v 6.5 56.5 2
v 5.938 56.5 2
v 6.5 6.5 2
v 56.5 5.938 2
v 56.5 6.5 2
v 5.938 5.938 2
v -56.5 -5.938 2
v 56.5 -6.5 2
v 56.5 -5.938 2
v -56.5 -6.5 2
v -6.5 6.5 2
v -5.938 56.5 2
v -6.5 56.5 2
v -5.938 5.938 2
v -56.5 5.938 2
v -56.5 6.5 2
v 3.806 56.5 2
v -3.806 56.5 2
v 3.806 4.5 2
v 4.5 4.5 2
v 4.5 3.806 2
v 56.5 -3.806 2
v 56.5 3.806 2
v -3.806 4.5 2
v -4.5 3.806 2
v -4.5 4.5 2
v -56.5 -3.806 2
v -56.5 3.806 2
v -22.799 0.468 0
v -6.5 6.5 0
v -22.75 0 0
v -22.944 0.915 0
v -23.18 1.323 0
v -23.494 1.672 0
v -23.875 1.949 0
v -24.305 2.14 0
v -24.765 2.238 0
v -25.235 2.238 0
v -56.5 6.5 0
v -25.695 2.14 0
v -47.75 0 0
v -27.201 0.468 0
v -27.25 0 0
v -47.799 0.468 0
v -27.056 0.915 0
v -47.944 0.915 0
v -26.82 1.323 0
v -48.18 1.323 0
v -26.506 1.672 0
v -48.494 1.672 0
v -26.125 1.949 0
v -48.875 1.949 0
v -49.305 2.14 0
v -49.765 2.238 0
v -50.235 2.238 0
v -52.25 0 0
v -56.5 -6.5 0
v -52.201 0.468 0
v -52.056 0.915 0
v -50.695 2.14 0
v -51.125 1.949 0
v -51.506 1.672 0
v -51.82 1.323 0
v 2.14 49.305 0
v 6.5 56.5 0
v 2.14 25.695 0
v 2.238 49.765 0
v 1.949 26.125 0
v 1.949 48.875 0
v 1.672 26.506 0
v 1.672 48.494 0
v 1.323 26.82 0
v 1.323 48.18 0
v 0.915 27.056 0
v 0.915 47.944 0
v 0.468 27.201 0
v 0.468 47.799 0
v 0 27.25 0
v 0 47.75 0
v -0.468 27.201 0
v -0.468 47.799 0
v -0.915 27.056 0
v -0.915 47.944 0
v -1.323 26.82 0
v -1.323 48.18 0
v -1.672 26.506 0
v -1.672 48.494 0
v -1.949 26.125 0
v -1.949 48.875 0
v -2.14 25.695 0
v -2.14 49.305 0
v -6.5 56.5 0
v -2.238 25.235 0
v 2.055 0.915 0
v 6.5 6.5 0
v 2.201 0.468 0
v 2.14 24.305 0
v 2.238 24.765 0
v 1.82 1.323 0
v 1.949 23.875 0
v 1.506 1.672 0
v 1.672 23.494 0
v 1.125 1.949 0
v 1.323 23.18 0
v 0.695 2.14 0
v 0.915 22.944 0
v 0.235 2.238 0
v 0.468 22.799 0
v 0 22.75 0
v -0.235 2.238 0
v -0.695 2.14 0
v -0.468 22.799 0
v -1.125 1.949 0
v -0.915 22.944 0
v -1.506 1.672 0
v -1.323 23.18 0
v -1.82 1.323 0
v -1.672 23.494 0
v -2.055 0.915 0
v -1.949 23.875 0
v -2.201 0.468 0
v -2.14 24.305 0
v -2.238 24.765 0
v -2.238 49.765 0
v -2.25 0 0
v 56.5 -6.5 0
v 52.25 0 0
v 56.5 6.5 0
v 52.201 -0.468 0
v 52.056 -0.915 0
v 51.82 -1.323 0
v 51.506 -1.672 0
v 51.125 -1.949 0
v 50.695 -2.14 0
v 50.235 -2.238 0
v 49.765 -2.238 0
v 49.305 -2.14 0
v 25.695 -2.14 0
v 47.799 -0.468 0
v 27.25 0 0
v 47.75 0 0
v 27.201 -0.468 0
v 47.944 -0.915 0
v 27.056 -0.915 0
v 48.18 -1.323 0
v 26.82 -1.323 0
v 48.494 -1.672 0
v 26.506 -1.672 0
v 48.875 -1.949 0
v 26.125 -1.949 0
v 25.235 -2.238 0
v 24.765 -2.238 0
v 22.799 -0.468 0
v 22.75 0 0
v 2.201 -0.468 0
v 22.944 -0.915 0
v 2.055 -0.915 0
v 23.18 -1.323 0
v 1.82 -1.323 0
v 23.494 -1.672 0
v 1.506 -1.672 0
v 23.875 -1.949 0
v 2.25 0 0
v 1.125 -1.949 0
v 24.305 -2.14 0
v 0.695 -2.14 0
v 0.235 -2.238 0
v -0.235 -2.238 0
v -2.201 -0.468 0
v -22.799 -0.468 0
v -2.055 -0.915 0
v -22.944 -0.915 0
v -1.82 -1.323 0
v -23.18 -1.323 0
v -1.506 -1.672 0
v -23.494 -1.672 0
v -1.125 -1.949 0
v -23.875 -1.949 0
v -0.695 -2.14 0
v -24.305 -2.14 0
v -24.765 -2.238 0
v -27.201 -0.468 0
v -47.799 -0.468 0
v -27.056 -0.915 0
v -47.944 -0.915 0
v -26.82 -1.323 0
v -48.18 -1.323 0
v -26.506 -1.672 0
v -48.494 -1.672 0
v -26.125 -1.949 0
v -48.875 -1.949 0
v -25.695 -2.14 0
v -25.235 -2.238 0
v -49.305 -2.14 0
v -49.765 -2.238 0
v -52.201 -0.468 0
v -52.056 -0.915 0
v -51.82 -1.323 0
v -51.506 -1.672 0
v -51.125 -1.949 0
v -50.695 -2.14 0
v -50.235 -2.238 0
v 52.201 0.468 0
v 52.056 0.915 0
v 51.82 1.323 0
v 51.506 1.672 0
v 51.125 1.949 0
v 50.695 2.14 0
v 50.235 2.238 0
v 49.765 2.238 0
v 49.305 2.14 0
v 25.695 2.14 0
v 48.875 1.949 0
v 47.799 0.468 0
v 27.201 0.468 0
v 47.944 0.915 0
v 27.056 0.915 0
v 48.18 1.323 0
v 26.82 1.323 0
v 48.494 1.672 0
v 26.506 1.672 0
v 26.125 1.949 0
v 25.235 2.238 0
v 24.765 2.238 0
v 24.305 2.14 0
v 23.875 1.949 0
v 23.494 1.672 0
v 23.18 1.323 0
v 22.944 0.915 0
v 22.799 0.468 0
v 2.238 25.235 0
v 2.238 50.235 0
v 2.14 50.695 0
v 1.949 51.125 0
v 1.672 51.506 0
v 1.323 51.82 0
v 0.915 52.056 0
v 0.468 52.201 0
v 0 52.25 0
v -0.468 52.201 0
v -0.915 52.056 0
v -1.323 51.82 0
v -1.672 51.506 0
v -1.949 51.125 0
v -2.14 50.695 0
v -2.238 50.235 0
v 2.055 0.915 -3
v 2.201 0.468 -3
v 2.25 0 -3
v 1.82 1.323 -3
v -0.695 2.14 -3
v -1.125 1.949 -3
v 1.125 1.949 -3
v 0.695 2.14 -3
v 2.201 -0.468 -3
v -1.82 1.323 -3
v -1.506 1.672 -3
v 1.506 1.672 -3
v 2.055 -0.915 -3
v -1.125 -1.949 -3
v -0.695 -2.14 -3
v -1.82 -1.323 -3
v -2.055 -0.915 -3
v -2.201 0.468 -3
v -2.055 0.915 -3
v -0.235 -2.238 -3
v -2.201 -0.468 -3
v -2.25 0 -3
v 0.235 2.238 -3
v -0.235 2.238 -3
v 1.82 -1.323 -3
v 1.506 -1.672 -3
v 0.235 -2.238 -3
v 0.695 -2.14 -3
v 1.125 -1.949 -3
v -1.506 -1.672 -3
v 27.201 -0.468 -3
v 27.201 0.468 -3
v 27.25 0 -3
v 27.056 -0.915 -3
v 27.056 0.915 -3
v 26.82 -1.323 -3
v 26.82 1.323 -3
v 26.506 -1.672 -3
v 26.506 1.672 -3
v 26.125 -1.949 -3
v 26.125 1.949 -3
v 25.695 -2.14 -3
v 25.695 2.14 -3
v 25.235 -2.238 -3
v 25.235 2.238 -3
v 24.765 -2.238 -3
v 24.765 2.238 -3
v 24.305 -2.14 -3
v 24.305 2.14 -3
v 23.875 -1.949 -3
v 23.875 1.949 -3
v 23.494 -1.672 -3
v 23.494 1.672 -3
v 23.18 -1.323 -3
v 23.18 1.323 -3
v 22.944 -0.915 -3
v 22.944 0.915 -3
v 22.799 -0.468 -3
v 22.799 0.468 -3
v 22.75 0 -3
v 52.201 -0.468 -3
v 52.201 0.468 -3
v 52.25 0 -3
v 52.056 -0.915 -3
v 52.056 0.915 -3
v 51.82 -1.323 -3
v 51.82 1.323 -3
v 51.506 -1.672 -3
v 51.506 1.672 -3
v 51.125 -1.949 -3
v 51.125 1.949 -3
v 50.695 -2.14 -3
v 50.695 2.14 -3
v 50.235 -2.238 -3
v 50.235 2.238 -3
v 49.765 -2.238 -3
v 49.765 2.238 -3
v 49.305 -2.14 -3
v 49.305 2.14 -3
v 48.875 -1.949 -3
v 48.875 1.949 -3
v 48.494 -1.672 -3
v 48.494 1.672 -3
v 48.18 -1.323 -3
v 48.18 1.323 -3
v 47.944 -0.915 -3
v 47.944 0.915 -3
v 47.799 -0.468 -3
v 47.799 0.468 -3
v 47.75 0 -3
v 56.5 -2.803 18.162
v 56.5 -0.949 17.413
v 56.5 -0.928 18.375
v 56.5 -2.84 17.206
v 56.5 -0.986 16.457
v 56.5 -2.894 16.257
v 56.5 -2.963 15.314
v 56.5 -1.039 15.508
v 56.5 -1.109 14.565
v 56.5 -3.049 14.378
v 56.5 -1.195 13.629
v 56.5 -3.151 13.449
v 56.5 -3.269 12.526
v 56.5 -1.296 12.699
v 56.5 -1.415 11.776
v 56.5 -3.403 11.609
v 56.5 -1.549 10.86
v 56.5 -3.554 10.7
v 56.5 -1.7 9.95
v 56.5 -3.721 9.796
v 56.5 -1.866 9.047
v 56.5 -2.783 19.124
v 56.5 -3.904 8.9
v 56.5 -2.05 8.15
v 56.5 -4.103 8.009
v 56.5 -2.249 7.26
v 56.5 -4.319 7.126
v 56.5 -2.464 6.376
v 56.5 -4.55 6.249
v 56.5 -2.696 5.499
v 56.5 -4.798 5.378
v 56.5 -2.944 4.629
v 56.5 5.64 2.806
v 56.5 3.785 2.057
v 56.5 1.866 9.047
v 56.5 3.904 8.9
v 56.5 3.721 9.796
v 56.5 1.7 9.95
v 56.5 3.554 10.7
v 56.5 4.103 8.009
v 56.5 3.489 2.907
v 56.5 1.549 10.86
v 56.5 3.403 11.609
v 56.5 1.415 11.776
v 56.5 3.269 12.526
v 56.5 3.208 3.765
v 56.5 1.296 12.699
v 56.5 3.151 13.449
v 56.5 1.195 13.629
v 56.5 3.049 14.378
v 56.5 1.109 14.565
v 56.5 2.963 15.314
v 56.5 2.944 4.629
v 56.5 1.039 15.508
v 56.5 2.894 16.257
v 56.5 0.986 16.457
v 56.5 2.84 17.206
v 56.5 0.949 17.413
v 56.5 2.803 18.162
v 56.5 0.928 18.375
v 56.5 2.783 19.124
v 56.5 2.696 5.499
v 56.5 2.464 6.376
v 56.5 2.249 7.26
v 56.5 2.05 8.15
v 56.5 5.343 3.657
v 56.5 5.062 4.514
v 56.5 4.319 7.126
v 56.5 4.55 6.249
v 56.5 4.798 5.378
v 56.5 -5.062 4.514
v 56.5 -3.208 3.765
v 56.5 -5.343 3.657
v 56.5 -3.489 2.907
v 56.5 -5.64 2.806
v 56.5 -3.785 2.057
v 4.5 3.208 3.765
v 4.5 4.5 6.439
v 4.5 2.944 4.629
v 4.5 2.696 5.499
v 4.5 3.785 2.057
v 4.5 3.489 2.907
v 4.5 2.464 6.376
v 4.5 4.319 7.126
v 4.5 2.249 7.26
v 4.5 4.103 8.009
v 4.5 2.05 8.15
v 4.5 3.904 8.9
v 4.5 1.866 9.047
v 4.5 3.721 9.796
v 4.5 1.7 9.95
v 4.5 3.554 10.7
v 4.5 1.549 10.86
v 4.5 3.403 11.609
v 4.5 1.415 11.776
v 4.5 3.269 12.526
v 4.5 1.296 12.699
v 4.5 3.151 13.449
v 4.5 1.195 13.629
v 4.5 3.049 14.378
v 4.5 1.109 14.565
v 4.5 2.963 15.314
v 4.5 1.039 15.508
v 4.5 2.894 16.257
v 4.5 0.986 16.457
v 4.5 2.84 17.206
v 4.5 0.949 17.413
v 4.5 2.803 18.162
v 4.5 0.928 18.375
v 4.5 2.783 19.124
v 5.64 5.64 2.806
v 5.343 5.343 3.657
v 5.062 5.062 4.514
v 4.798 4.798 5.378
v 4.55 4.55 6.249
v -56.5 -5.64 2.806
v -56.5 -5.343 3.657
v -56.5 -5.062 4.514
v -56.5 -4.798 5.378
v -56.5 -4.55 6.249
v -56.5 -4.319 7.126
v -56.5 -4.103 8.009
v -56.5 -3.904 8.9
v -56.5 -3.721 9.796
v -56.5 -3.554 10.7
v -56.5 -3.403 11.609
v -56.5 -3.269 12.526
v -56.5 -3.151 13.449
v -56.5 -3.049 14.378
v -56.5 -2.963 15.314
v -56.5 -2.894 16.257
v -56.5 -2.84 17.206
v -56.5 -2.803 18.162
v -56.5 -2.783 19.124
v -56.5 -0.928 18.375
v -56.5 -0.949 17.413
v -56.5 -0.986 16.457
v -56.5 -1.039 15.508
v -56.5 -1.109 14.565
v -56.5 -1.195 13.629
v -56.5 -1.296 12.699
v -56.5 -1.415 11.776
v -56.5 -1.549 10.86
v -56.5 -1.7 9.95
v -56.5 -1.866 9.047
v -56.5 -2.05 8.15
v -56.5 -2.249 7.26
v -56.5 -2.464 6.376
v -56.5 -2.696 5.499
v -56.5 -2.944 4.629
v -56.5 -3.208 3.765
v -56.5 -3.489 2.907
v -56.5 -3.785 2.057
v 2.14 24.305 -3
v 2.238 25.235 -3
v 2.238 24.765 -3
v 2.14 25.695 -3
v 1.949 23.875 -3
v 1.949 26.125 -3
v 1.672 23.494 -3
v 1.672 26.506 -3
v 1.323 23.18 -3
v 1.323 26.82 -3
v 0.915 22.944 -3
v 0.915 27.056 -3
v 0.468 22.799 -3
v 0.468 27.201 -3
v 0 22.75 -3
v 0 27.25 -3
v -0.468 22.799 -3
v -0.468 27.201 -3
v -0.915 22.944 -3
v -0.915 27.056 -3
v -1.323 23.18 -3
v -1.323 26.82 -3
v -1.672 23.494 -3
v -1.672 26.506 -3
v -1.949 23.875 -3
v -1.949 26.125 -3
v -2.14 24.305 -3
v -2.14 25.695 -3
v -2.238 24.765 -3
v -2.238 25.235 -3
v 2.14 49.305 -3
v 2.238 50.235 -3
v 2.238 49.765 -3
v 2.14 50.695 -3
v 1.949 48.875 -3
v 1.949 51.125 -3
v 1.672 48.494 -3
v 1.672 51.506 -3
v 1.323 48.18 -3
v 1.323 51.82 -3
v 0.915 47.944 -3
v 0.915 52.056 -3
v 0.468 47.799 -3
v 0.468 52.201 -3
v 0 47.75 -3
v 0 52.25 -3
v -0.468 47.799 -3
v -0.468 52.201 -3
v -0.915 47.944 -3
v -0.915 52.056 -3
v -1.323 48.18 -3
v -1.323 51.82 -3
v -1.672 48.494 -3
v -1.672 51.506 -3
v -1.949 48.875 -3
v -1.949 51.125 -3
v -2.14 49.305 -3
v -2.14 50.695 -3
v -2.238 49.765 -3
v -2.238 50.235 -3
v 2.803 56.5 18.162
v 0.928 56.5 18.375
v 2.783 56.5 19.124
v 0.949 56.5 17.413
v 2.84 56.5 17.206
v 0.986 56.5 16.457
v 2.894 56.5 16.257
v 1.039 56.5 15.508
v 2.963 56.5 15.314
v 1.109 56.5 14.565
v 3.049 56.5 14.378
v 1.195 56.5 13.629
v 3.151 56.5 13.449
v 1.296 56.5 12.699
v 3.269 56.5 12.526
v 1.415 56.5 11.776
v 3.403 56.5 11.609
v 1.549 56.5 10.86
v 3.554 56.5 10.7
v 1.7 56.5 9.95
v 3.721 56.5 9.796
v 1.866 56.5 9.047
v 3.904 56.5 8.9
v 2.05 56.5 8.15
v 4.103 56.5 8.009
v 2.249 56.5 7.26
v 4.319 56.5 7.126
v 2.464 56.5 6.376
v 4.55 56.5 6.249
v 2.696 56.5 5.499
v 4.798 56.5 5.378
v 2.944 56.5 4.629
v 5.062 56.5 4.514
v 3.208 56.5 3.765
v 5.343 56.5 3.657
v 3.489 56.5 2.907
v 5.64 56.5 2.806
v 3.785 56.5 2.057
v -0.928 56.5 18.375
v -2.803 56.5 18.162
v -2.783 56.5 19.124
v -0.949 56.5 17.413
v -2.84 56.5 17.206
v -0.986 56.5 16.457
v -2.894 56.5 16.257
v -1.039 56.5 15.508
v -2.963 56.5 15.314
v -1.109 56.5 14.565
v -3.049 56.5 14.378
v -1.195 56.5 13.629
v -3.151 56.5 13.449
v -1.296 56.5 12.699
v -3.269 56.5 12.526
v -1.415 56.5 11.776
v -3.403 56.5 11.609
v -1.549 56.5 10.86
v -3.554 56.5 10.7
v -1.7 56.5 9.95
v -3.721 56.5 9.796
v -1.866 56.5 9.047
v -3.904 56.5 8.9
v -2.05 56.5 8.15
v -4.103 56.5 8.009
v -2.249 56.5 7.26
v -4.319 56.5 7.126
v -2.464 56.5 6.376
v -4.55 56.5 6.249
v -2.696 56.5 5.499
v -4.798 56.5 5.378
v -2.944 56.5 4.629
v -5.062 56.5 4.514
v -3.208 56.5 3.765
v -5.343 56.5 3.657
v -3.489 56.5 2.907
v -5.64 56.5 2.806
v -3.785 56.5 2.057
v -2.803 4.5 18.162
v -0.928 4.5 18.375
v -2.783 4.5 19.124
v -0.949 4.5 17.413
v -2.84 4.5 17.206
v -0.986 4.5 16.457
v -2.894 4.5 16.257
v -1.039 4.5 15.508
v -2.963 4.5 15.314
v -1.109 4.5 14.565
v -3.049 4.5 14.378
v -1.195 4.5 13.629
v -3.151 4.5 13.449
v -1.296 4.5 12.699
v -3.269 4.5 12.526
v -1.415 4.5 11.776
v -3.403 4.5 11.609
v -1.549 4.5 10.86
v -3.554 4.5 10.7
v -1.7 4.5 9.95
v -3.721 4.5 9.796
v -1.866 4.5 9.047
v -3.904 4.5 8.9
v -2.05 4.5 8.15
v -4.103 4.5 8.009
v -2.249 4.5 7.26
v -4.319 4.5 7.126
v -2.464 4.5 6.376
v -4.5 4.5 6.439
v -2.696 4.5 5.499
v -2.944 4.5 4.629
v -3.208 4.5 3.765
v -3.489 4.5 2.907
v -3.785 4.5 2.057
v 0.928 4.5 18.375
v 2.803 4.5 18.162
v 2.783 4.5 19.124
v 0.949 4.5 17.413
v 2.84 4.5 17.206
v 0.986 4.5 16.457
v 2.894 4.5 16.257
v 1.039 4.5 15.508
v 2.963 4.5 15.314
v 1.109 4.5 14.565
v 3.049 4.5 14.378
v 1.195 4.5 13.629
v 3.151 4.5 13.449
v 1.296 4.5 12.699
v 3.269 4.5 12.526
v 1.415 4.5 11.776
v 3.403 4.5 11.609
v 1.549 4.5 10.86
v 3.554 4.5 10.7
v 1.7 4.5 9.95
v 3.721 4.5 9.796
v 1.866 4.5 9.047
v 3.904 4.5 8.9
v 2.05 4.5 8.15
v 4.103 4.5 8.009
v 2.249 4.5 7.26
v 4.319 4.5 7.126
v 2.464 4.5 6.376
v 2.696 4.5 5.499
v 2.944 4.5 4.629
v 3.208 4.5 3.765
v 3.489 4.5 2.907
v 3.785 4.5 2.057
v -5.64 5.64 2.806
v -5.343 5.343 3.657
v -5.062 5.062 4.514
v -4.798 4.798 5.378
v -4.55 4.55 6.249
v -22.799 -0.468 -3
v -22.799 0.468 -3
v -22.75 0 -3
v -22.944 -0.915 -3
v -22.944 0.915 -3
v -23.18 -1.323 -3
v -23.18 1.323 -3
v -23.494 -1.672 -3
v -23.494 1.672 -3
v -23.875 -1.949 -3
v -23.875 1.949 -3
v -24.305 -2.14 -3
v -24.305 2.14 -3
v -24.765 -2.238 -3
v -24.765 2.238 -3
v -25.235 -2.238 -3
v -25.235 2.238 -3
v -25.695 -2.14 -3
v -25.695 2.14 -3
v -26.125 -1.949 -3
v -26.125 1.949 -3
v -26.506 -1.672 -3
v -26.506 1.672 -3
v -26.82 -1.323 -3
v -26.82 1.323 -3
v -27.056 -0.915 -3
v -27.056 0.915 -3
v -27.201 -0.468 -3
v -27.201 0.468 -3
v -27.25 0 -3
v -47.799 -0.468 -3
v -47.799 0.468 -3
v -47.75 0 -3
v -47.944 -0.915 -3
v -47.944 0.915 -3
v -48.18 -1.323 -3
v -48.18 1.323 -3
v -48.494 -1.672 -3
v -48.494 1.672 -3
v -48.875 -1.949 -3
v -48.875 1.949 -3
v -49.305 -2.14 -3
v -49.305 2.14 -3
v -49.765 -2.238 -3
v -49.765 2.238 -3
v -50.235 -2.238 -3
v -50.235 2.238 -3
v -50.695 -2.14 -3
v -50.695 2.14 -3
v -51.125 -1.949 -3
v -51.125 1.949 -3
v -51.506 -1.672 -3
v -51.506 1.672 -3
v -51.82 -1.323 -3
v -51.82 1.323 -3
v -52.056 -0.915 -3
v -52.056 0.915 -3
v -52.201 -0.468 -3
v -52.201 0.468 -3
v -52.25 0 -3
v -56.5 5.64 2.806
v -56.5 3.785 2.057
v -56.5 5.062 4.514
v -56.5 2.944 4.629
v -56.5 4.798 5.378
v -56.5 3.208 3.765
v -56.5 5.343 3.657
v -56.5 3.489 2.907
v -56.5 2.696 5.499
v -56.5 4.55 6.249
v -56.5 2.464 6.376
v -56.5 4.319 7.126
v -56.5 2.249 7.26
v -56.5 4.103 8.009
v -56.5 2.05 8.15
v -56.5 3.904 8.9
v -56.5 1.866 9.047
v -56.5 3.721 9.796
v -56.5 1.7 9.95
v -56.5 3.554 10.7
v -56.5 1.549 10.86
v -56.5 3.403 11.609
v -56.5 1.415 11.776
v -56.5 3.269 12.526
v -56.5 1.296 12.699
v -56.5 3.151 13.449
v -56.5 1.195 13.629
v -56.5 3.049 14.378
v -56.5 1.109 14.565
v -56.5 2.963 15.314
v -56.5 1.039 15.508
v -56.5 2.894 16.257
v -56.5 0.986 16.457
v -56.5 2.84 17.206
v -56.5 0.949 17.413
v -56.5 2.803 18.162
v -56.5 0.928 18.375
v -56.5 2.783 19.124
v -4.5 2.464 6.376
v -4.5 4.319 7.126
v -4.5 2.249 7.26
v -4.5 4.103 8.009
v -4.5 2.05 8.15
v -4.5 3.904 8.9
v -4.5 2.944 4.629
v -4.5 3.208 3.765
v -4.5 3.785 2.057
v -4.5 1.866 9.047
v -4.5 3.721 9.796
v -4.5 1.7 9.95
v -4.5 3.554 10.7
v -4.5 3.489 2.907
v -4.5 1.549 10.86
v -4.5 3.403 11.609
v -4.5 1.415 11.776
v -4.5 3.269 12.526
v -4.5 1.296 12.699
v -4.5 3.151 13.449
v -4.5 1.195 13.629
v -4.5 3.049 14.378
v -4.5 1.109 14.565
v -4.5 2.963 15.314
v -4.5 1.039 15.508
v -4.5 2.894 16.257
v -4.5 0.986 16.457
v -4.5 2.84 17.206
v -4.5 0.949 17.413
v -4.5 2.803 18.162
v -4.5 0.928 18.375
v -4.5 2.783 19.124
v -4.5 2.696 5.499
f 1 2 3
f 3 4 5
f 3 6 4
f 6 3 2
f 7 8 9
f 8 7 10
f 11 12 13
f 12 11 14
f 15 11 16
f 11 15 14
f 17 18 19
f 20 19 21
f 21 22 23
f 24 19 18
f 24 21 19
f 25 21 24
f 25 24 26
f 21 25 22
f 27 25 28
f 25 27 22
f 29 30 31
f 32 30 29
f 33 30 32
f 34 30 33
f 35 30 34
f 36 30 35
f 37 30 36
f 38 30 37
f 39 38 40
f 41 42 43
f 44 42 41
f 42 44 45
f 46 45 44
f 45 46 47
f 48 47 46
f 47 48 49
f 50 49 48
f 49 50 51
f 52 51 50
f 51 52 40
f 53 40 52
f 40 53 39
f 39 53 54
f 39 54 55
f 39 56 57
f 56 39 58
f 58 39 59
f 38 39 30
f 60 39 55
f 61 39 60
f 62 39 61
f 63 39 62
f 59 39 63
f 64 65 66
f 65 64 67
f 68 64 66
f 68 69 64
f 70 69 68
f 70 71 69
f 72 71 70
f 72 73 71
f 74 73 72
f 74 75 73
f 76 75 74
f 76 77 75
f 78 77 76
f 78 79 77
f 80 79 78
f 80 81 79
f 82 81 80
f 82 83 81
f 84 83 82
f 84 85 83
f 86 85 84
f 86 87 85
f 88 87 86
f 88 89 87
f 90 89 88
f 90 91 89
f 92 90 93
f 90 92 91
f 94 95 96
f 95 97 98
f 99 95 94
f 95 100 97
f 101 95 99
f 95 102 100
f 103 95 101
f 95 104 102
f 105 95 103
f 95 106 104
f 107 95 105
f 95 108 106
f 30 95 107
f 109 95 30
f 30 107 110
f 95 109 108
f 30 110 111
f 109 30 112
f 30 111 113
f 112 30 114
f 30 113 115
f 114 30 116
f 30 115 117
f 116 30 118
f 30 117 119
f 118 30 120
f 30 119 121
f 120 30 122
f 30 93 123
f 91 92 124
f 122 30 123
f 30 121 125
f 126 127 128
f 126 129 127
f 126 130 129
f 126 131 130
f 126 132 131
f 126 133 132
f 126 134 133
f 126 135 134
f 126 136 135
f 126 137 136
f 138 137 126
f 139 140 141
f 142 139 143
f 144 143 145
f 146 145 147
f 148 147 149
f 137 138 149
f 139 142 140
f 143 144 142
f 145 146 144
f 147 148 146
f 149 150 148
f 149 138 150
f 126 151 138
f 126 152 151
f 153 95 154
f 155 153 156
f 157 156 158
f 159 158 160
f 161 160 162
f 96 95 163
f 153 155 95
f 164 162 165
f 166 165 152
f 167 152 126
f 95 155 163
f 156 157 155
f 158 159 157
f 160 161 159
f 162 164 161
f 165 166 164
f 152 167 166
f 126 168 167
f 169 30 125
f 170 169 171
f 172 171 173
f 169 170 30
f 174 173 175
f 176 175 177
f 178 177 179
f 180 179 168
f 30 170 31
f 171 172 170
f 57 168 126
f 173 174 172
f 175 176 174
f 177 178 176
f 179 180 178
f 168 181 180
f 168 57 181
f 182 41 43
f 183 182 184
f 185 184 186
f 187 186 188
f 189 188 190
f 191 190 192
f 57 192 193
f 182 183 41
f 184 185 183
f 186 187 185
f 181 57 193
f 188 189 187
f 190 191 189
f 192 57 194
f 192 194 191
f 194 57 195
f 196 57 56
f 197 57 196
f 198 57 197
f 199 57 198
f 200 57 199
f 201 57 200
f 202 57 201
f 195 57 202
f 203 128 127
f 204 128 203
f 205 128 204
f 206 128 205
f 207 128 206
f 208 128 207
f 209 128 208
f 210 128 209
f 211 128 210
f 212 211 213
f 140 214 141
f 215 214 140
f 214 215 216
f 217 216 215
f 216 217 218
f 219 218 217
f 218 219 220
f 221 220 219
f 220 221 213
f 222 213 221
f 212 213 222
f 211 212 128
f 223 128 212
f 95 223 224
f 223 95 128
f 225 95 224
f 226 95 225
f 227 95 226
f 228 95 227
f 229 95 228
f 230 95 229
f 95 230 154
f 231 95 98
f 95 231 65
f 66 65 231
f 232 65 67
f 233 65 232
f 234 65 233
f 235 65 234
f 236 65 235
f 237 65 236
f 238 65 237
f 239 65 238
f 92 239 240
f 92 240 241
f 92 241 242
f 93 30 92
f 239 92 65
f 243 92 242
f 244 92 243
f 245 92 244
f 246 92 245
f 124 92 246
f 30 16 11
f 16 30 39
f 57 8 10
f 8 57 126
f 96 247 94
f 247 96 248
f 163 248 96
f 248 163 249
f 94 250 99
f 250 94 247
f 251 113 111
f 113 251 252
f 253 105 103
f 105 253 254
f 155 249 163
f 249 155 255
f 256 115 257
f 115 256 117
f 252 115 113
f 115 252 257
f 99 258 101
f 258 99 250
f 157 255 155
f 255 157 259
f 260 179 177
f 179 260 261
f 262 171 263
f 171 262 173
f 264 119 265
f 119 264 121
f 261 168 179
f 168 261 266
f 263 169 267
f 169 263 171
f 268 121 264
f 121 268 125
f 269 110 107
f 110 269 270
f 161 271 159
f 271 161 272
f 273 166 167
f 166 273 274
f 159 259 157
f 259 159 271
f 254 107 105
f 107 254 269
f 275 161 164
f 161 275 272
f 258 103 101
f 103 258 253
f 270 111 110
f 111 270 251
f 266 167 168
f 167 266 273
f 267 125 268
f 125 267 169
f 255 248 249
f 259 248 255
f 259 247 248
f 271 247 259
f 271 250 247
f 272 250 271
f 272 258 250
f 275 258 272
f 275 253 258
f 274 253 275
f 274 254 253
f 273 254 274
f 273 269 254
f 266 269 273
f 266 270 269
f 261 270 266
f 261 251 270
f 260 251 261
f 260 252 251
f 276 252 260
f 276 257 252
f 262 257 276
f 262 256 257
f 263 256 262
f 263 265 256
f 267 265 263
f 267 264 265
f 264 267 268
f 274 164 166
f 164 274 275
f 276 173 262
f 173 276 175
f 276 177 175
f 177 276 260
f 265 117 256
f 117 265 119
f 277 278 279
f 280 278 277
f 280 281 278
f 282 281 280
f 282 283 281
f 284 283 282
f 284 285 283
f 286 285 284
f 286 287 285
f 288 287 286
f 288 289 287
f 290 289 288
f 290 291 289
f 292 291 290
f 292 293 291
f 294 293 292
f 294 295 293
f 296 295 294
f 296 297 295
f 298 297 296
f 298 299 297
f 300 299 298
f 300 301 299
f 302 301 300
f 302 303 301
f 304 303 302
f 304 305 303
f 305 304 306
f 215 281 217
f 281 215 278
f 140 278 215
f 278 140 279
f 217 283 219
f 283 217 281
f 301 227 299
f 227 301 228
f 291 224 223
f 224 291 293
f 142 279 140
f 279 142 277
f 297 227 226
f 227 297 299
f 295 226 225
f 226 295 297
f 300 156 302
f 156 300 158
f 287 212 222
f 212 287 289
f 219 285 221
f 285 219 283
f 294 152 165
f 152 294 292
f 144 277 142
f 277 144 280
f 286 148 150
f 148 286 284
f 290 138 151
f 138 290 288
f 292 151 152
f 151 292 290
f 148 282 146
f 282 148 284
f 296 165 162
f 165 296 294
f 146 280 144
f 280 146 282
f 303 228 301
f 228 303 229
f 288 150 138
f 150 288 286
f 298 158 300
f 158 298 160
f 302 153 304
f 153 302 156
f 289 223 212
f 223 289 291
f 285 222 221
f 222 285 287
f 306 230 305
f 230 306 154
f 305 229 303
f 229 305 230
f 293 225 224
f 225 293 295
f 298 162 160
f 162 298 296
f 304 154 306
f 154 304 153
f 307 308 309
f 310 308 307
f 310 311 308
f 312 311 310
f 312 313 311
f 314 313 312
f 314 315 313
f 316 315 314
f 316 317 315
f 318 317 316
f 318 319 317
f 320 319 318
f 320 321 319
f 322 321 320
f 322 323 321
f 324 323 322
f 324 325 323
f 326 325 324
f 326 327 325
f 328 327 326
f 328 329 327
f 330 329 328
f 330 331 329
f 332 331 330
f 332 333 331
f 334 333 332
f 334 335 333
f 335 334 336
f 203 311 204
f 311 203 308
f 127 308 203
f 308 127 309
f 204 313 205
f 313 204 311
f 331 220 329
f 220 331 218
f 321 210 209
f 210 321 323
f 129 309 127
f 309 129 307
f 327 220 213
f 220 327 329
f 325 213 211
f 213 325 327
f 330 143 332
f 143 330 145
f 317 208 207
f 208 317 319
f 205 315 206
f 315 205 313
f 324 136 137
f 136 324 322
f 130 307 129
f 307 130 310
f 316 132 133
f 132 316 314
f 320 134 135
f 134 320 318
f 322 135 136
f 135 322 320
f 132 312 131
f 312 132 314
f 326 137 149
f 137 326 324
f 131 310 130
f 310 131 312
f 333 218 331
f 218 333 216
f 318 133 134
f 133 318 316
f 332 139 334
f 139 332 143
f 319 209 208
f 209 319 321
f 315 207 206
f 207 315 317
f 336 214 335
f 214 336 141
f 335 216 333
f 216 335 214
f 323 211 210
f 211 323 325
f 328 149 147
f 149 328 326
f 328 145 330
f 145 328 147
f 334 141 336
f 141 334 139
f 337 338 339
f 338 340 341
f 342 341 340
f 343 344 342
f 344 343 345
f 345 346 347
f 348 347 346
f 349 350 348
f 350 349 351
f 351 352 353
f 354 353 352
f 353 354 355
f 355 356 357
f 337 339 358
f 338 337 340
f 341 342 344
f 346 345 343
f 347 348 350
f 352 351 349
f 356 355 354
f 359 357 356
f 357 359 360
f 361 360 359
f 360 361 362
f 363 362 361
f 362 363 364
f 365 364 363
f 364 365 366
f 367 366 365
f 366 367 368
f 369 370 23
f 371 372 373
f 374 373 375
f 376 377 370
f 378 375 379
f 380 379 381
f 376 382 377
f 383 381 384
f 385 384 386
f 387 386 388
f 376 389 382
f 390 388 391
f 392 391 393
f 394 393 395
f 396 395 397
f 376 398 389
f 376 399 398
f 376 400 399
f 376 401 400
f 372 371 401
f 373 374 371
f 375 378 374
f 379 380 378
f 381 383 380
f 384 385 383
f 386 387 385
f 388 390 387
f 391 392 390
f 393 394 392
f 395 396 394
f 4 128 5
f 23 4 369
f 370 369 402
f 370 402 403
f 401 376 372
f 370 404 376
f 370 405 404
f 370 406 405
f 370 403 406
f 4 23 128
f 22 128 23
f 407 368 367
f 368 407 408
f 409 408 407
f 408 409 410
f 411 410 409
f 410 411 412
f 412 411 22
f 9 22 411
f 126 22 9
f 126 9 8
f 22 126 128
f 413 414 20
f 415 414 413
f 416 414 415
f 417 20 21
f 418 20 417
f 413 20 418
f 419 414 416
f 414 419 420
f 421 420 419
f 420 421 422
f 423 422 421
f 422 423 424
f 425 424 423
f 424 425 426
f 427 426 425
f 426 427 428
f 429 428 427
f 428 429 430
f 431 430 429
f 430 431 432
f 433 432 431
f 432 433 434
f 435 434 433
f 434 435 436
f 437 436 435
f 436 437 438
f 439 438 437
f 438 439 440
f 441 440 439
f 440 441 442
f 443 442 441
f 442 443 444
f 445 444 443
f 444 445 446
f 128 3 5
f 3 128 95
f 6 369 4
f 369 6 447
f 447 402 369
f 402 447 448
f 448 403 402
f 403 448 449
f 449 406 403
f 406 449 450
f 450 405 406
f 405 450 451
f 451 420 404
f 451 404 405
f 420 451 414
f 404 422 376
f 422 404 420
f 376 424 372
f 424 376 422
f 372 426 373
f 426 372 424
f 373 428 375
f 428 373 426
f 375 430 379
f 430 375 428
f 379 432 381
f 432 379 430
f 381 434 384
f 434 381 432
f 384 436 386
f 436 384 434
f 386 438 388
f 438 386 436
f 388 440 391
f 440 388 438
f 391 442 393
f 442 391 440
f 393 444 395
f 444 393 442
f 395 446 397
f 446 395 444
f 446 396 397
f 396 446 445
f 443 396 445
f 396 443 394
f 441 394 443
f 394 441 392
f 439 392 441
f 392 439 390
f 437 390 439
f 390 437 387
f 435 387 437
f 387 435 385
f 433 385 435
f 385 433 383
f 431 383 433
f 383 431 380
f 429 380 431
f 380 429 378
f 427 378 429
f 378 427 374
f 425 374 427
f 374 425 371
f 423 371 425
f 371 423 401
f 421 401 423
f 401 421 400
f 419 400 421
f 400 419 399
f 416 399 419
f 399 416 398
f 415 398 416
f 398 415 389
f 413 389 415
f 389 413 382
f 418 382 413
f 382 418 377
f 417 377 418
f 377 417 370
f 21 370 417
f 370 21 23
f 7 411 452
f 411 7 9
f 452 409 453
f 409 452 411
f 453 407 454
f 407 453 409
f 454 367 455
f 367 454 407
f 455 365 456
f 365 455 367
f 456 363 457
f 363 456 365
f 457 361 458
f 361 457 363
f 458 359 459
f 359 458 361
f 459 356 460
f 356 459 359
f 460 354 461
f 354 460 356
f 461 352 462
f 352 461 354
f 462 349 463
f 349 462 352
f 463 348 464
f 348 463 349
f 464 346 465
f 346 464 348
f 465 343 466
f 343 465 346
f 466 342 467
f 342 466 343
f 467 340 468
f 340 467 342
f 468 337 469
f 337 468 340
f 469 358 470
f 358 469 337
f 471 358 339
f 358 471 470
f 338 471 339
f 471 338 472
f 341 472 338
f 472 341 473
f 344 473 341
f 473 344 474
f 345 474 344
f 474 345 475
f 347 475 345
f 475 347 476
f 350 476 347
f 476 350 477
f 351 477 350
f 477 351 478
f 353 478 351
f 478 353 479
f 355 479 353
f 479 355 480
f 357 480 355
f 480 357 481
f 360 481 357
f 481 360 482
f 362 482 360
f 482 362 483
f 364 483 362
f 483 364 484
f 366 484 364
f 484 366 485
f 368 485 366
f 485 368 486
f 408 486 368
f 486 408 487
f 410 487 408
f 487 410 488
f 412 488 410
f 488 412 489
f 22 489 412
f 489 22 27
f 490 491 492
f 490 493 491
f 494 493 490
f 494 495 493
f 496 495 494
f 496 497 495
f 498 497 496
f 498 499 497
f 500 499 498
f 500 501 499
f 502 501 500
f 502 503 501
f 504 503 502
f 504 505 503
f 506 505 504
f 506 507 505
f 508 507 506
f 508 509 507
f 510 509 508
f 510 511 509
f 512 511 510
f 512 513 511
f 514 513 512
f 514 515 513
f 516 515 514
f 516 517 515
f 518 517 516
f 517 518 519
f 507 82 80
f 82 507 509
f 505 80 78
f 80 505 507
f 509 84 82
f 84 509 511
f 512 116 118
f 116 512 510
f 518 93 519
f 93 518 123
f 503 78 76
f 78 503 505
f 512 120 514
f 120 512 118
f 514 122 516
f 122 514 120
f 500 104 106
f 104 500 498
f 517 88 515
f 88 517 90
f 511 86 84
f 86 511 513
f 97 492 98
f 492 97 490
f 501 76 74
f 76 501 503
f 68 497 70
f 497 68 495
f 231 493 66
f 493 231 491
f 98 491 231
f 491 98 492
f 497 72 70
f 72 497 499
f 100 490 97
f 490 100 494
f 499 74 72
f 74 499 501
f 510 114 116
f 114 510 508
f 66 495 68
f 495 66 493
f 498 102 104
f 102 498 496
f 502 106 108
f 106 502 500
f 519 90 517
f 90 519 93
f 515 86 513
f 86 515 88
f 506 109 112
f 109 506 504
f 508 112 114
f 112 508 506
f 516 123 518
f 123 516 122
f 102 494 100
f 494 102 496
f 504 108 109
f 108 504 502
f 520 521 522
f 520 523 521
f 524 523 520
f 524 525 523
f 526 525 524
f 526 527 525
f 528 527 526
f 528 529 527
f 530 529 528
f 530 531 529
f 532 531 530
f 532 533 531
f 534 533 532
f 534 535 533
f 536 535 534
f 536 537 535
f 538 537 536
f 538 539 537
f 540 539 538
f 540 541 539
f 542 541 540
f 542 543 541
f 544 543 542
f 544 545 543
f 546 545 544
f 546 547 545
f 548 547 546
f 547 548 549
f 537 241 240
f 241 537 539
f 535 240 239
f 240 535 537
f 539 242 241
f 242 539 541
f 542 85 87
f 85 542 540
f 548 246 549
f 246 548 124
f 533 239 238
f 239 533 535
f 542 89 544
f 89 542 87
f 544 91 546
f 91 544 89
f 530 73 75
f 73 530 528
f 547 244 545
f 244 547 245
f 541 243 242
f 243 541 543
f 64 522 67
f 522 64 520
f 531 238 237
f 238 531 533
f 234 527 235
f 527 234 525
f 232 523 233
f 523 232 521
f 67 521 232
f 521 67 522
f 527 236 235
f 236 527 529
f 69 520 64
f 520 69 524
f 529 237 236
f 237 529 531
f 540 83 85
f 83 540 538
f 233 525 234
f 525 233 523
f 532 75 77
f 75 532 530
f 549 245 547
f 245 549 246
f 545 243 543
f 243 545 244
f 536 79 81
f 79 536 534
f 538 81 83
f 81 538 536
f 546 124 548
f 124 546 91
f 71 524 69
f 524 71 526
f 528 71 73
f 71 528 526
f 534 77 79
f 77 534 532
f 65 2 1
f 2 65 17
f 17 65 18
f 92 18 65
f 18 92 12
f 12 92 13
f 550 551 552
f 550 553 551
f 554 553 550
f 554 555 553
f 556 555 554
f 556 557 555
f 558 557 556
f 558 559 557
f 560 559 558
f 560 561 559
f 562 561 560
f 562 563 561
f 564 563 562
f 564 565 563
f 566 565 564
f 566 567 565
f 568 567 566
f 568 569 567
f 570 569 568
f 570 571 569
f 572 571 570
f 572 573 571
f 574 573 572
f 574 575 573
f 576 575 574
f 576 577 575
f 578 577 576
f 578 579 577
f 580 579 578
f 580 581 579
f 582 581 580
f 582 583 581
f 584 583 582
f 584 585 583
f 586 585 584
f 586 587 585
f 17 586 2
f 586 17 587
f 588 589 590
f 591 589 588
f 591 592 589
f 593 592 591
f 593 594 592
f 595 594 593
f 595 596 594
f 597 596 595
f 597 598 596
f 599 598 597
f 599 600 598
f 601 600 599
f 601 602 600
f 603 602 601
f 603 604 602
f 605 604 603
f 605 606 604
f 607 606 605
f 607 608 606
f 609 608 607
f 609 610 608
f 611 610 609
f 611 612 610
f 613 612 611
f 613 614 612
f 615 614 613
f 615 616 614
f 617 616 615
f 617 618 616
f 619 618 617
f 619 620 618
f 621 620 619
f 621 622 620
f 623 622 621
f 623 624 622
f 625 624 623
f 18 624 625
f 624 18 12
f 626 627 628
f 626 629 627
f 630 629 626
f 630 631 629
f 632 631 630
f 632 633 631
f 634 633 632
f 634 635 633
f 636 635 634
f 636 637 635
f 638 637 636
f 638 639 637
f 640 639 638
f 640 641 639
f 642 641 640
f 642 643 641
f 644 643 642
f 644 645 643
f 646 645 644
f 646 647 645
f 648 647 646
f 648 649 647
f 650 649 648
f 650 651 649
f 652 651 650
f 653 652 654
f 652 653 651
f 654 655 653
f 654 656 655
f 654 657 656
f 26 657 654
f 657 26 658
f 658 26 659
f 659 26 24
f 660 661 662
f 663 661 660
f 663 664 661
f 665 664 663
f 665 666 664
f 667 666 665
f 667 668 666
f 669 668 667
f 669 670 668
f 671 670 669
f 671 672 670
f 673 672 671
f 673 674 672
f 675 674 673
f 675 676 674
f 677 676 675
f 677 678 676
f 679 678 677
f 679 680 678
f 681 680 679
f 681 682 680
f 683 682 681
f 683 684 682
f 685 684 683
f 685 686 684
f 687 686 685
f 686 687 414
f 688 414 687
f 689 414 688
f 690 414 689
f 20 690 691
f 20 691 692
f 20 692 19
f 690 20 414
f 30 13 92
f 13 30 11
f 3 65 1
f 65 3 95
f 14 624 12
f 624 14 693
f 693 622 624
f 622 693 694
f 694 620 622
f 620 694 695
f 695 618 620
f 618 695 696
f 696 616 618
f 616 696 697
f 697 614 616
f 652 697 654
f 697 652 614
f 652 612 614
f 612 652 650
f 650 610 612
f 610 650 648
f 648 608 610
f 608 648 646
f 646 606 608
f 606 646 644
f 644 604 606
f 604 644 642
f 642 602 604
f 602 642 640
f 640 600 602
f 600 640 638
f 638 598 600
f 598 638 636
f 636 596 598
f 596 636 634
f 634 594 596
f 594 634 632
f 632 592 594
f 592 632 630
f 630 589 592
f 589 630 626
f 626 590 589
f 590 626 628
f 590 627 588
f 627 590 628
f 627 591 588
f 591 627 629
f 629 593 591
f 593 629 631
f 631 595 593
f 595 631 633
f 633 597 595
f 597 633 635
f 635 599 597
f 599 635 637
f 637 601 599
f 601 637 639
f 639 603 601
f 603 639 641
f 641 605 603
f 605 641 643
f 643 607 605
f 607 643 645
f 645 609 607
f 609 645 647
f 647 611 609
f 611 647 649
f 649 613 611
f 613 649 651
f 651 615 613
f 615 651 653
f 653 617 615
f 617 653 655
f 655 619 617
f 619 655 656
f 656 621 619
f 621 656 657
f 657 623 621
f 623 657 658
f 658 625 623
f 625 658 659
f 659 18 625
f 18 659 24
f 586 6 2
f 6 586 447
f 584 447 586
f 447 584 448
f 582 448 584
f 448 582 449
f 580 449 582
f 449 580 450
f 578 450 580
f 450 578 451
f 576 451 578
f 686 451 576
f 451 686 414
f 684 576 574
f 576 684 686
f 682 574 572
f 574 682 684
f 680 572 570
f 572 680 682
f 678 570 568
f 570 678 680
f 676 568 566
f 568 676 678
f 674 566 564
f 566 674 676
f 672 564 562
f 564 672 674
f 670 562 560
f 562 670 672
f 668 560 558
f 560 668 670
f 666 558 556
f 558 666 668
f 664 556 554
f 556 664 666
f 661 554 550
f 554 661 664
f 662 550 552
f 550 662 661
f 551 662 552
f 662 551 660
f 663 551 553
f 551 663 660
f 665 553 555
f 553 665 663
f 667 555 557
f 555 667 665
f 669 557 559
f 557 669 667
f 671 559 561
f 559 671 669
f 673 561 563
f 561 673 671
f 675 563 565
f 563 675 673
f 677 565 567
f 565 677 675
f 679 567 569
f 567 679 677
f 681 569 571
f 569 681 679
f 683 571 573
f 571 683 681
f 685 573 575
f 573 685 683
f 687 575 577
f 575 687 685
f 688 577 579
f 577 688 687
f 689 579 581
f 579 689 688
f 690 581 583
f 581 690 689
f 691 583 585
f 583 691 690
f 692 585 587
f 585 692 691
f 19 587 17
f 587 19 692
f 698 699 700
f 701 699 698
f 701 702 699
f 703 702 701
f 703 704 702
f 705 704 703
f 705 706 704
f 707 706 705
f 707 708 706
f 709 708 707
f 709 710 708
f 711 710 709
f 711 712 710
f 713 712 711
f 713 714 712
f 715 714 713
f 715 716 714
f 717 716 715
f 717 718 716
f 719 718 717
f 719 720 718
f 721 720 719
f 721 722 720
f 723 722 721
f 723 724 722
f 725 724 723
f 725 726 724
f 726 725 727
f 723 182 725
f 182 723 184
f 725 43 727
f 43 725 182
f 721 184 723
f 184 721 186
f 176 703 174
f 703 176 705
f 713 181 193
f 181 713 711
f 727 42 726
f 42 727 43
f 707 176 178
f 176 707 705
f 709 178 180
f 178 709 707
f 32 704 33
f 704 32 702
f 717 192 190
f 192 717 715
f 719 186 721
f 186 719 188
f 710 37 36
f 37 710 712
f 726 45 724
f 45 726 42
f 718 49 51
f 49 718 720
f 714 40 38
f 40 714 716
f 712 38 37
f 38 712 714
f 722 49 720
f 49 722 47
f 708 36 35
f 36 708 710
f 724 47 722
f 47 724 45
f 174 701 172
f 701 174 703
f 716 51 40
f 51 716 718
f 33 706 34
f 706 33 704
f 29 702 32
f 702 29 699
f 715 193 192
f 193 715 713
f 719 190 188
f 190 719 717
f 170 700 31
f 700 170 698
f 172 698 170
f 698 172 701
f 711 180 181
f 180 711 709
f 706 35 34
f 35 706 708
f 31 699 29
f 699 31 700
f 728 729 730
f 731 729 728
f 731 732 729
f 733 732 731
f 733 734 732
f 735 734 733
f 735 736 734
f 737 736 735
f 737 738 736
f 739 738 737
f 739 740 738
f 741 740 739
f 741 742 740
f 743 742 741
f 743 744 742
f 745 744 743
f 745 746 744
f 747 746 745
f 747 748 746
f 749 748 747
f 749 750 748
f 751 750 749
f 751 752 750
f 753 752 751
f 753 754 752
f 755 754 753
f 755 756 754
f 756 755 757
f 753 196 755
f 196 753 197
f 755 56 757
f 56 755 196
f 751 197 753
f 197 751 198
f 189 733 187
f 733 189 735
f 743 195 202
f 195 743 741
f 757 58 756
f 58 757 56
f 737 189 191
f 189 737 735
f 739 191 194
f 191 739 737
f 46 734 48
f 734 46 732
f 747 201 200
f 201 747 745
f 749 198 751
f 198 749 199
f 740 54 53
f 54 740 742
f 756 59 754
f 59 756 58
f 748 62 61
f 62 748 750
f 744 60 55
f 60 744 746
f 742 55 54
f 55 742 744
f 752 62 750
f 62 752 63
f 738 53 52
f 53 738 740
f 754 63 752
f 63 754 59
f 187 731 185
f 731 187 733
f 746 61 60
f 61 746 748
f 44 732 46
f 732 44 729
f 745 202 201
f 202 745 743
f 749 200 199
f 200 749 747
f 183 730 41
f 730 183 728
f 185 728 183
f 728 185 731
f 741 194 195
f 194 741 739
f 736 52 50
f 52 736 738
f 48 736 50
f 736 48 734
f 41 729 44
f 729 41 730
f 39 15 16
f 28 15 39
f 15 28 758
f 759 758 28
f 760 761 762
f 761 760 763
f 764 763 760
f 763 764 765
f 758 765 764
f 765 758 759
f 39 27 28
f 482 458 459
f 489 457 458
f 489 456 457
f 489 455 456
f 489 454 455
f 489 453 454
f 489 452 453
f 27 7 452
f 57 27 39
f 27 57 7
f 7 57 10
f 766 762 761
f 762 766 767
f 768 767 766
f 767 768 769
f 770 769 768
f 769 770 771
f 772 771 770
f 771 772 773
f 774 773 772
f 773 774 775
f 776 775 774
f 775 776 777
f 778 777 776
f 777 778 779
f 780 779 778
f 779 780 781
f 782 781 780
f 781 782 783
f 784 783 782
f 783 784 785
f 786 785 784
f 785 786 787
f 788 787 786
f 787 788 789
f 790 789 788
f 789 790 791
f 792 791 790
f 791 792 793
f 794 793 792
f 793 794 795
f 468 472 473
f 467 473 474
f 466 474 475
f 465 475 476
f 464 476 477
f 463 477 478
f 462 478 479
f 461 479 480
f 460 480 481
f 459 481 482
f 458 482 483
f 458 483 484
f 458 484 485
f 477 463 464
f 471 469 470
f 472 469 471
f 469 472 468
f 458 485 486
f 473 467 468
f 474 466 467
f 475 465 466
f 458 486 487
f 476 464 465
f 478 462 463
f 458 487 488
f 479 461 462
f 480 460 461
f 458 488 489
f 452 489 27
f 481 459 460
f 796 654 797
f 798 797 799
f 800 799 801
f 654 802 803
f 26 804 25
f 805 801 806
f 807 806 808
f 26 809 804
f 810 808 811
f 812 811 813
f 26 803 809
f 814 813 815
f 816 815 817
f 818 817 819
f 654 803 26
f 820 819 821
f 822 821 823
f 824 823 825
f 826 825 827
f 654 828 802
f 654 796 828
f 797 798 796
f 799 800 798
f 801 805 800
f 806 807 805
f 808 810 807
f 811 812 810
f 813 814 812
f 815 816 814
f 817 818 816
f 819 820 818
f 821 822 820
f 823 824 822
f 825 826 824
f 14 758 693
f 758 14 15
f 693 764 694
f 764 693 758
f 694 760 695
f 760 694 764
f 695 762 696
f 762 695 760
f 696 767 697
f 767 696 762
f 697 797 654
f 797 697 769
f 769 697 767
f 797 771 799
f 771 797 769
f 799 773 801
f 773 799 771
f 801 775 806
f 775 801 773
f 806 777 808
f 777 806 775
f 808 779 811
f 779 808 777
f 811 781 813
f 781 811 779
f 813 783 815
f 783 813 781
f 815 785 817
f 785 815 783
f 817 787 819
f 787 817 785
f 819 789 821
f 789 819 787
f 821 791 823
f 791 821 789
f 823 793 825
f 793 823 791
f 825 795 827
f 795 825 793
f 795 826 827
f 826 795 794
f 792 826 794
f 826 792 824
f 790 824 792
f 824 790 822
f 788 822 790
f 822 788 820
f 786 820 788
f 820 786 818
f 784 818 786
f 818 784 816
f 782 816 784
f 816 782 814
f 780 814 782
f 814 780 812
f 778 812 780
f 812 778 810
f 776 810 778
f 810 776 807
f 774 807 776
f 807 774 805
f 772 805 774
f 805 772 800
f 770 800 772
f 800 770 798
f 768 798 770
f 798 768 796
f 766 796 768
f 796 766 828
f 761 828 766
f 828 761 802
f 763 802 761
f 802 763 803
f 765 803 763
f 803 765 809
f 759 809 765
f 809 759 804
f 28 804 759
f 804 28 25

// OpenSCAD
// file: common.scad
CENTER_SIZE = 9;
SLEEVE_REACH = 56.5;
GROOVE_WIDTH = 9;
WALL_HEIGHT = 10;
WALL_THICKNESS = 2;
BASE_THICKNESS = 2;
TOTAL_WIDTH = GROOVE_WIDTH + 2 * WALL_THICKNESS;
SLEEVE_LENGTH = SLEEVE_REACH - CENTER_SIZE/2;
DOWEL_DIAMETER = 4.5;
DOWEL_DEPTH = 3;
CARDBOARD_THICKNESS = 2;
GROOVE_BOTTOM = CARDBOARD_THICKNESS;
CURVE_POWER = 2;
CURVE_POINTS = 20;
TILT_ANGLE_EXTRA = 5;
FLEXIBLE_WALL_HEIGHT = WALL_HEIGHT * 2;
function wall_curve(z) =
    GROOVE_BOTTOM/2 + (GROOVE_WIDTH/2 - GROOVE_BOTTOM/2) * pow(z/(FLEXIBLE_WALL_HEIGHT - BASE_THICKNESS), CURVE_POWER);
module curved_wall_profile(side) {
    wall_h = FLEXIBLE_WALL_HEIGHT - BASE_THICKNESS;
    points_inner = [for (i = [0:CURVE_POINTS])
        [wall_curve(i * wall_h / CURVE_POINTS) * side,
         i * wall_h / CURVE_POINTS]
    ];
    points_outer = [for (i = [0:CURVE_POINTS])
        [(wall_curve(i * wall_h / CURVE_POINTS) + WALL_THICKNESS) * side,
         i * wall_h / CURVE_POINTS]
    ];
    all_points = concat(
        [[points_inner[0][0], 0]],
        points_inner,
        [points_outer[len(points_outer)-1]],
        [for (i = [len(points_outer)-1:-1:0]) points_outer[i]],
        [[points_outer[0][0], 0]]
    );
    polygon(all_points);
}
module draw_regular_wall_base(width) {
    translate([0, 0, BASE_THICKNESS])
        cube([width, WALL_THICKNESS, WALL_HEIGHT - BASE_THICKNESS]);
}
module draw_flexible_wall_base(width) {
    tilt_angle = atan((GROOVE_WIDTH/2 - GROOVE_BOTTOM/2) / (FLEXIBLE_WALL_HEIGHT - BASE_THICKNESS)) + TILT_ANGLE_EXTRA;
    rotate([0, 0, 90])
        rotate([tilt_angle + 6, 0, 0])
            rotate([90, 0, 90])
                linear_extrude(height = width)
                    curved_wall_profile(1);
}
module draw_center_base(with_dowel = false) {
    union() {
        translate([-TOTAL_WIDTH/2, -TOTAL_WIDTH/2, 0])
            cube([TOTAL_WIDTH, TOTAL_WIDTH, BASE_THICKNESS]);
        if (with_dowel) {
            translate([0, 0, -DOWEL_DEPTH])
                cylinder(h=DOWEL_DEPTH, d=DOWEL_DIAMETER, $fn=30);
        }
    }
}
module place_regular_center_wall(side) {
    if (side == 0) {
        translate([CENTER_SIZE/2 + WALL_THICKNESS, -TOTAL_WIDTH/2, 0])
            rotate([0, 0, 90])
                draw_regular_wall_base(TOTAL_WIDTH);
    } else if (side == 1) {
        translate([-TOTAL_WIDTH/2, CENTER_SIZE/2, 0])
            draw_regular_wall_base(TOTAL_WIDTH);
    } else if (side == 2) {
        translate([-CENTER_SIZE/2, -TOTAL_WIDTH/2, 0])
            rotate([0, 0, 90])
                draw_regular_wall_base(TOTAL_WIDTH);
    } else if (side == 3) {
        translate([-TOTAL_WIDTH/2, -CENTER_SIZE/2 - WALL_THICKNESS, 0])
            draw_regular_wall_base(TOTAL_WIDTH);
    }
}
module place_flexible_center_wall(side) {
    if (side == 0) {
        translate([CENTER_SIZE/2 - WALL_THICKNESS/2, TOTAL_WIDTH/2, 0])
            rotate([0, 0, 180])
                draw_flexible_wall_base(TOTAL_WIDTH);
    } else if (side == 1) {
        translate([-TOTAL_WIDTH/2, CENTER_SIZE/2 - WALL_THICKNESS/2, 0])
            rotate([0, 0, 270])
                draw_flexible_wall_base(TOTAL_WIDTH);
    } else if (side == 2) {
        translate([-CENTER_SIZE/2 + WALL_THICKNESS/2, -TOTAL_WIDTH/2, 0])
            draw_flexible_wall_base(TOTAL_WIDTH);
    } else if (side == 3) {
        translate([CENTER_SIZE/2 + WALL_THICKNESS, -TOTAL_WIDTH/2 + WALL_THICKNESS + WALL_THICKNESS/2, 0])
            rotate([0, 0, 90])
                draw_flexible_wall_base(TOTAL_WIDTH);
    }
}
module place_center_wall(side, wall_type = "regular") {
    if (wall_type == "regular") {
        place_regular_center_wall(side);
    } else if (wall_type == "flexible") {
        place_flexible_center_wall(side);
    }
}
module draw_sleeve_base(with_dowel = false) {
    union() {
        translate([0, -TOTAL_WIDTH/2, 0])
            cube([SLEEVE_LENGTH, TOTAL_WIDTH, BASE_THICKNESS]);
        if (with_dowel) {
            translate([25 - CENTER_SIZE/2, 0, -DOWEL_DEPTH])
                cylinder(h=DOWEL_DEPTH, d=DOWEL_DIAMETER, $fn=30);
            translate([50 - CENTER_SIZE/2, 0, -DOWEL_DEPTH])
                cylinder(h=DOWEL_DEPTH, d=DOWEL_DIAMETER, $fn=30);
        }
    }
}
module draw_regular_sleeve_wall(wall_side) {
    y_offset = (wall_side == "left") ? -TOTAL_WIDTH/2 : TOTAL_WIDTH/2 - WALL_THICKNESS;
    translate([0, y_offset, 0])
        draw_regular_wall_base(SLEEVE_LENGTH);
}
module draw_flexible_sleeve_wall(side) {
    if (side == "left") {
        translate([0, TOTAL_WIDTH/2 - WALL_THICKNESS/2 - WALL_THICKNESS, 0])
            rotate([0, 0, 270])
                draw_flexible_wall_base(SLEEVE_LENGTH);
    } else if (side == "right") {
        translate([SLEEVE_LENGTH, -TOTAL_WIDTH/2 + WALL_THICKNESS + WALL_THICKNESS/2, 0])
            rotate([0, 0, 90])
                draw_flexible_wall_base(SLEEVE_LENGTH);
    }
}
module draw_sleeve_wall(wall_side, wall_type = "regular") {
    if (wall_type == "regular") {
        draw_regular_sleeve_wall(wall_side);
    } else if (wall_type == "flexible") {
        draw_flexible_sleeve_wall(wall_side);
    }
}
module draw_full_sleeve(with_dowel = false, wall_type = "regular") {
    union() {
        draw_sleeve_base(with_dowel);
        draw_sleeve_wall("left", wall_type);
        draw_sleeve_wall("right", wall_type);
    }
}
module place_sleeve(side, with_dowel = false, wall_type = "regular") {
    if (side == 0) {
        translate([CENTER_SIZE/2, 0, 0])
            draw_full_sleeve(with_dowel, wall_type);
    } else if (side == 1) {
        rotate([0, 0, 90])
            translate([CENTER_SIZE/2, 0, 0])
                draw_full_sleeve(with_dowel, wall_type);
    } else if (side == 2) {
        rotate([0, 0, 180])
            translate([CENTER_SIZE/2, 0, 0])
                draw_full_sleeve(with_dowel, wall_type);
    } else if (side == 3) {
        rotate([0, 0, 270])
            translate([CENTER_SIZE/2, 0, 0])
                draw_full_sleeve(with_dowel, wall_type);
    }
}
module add_dowel(x, y, dowel_diameter, dowel_depth) {
    translate([x, y, -dowel_depth])
        cylinder(h=dowel_depth, d=dowel_diameter, $fn=30);
}
// main file
use <common.scad>

union() {
    draw_center_base(with_dowel = true);
    place_center_wall(3, "flexible");
    place_sleeve(0, with_dowel = true, wall_type = "flexible");
    place_sleeve(1, with_dowel = true, wall_type = "flexible");
    place_sleeve(2, with_dowel = true, wall_type = "flexible");
}
